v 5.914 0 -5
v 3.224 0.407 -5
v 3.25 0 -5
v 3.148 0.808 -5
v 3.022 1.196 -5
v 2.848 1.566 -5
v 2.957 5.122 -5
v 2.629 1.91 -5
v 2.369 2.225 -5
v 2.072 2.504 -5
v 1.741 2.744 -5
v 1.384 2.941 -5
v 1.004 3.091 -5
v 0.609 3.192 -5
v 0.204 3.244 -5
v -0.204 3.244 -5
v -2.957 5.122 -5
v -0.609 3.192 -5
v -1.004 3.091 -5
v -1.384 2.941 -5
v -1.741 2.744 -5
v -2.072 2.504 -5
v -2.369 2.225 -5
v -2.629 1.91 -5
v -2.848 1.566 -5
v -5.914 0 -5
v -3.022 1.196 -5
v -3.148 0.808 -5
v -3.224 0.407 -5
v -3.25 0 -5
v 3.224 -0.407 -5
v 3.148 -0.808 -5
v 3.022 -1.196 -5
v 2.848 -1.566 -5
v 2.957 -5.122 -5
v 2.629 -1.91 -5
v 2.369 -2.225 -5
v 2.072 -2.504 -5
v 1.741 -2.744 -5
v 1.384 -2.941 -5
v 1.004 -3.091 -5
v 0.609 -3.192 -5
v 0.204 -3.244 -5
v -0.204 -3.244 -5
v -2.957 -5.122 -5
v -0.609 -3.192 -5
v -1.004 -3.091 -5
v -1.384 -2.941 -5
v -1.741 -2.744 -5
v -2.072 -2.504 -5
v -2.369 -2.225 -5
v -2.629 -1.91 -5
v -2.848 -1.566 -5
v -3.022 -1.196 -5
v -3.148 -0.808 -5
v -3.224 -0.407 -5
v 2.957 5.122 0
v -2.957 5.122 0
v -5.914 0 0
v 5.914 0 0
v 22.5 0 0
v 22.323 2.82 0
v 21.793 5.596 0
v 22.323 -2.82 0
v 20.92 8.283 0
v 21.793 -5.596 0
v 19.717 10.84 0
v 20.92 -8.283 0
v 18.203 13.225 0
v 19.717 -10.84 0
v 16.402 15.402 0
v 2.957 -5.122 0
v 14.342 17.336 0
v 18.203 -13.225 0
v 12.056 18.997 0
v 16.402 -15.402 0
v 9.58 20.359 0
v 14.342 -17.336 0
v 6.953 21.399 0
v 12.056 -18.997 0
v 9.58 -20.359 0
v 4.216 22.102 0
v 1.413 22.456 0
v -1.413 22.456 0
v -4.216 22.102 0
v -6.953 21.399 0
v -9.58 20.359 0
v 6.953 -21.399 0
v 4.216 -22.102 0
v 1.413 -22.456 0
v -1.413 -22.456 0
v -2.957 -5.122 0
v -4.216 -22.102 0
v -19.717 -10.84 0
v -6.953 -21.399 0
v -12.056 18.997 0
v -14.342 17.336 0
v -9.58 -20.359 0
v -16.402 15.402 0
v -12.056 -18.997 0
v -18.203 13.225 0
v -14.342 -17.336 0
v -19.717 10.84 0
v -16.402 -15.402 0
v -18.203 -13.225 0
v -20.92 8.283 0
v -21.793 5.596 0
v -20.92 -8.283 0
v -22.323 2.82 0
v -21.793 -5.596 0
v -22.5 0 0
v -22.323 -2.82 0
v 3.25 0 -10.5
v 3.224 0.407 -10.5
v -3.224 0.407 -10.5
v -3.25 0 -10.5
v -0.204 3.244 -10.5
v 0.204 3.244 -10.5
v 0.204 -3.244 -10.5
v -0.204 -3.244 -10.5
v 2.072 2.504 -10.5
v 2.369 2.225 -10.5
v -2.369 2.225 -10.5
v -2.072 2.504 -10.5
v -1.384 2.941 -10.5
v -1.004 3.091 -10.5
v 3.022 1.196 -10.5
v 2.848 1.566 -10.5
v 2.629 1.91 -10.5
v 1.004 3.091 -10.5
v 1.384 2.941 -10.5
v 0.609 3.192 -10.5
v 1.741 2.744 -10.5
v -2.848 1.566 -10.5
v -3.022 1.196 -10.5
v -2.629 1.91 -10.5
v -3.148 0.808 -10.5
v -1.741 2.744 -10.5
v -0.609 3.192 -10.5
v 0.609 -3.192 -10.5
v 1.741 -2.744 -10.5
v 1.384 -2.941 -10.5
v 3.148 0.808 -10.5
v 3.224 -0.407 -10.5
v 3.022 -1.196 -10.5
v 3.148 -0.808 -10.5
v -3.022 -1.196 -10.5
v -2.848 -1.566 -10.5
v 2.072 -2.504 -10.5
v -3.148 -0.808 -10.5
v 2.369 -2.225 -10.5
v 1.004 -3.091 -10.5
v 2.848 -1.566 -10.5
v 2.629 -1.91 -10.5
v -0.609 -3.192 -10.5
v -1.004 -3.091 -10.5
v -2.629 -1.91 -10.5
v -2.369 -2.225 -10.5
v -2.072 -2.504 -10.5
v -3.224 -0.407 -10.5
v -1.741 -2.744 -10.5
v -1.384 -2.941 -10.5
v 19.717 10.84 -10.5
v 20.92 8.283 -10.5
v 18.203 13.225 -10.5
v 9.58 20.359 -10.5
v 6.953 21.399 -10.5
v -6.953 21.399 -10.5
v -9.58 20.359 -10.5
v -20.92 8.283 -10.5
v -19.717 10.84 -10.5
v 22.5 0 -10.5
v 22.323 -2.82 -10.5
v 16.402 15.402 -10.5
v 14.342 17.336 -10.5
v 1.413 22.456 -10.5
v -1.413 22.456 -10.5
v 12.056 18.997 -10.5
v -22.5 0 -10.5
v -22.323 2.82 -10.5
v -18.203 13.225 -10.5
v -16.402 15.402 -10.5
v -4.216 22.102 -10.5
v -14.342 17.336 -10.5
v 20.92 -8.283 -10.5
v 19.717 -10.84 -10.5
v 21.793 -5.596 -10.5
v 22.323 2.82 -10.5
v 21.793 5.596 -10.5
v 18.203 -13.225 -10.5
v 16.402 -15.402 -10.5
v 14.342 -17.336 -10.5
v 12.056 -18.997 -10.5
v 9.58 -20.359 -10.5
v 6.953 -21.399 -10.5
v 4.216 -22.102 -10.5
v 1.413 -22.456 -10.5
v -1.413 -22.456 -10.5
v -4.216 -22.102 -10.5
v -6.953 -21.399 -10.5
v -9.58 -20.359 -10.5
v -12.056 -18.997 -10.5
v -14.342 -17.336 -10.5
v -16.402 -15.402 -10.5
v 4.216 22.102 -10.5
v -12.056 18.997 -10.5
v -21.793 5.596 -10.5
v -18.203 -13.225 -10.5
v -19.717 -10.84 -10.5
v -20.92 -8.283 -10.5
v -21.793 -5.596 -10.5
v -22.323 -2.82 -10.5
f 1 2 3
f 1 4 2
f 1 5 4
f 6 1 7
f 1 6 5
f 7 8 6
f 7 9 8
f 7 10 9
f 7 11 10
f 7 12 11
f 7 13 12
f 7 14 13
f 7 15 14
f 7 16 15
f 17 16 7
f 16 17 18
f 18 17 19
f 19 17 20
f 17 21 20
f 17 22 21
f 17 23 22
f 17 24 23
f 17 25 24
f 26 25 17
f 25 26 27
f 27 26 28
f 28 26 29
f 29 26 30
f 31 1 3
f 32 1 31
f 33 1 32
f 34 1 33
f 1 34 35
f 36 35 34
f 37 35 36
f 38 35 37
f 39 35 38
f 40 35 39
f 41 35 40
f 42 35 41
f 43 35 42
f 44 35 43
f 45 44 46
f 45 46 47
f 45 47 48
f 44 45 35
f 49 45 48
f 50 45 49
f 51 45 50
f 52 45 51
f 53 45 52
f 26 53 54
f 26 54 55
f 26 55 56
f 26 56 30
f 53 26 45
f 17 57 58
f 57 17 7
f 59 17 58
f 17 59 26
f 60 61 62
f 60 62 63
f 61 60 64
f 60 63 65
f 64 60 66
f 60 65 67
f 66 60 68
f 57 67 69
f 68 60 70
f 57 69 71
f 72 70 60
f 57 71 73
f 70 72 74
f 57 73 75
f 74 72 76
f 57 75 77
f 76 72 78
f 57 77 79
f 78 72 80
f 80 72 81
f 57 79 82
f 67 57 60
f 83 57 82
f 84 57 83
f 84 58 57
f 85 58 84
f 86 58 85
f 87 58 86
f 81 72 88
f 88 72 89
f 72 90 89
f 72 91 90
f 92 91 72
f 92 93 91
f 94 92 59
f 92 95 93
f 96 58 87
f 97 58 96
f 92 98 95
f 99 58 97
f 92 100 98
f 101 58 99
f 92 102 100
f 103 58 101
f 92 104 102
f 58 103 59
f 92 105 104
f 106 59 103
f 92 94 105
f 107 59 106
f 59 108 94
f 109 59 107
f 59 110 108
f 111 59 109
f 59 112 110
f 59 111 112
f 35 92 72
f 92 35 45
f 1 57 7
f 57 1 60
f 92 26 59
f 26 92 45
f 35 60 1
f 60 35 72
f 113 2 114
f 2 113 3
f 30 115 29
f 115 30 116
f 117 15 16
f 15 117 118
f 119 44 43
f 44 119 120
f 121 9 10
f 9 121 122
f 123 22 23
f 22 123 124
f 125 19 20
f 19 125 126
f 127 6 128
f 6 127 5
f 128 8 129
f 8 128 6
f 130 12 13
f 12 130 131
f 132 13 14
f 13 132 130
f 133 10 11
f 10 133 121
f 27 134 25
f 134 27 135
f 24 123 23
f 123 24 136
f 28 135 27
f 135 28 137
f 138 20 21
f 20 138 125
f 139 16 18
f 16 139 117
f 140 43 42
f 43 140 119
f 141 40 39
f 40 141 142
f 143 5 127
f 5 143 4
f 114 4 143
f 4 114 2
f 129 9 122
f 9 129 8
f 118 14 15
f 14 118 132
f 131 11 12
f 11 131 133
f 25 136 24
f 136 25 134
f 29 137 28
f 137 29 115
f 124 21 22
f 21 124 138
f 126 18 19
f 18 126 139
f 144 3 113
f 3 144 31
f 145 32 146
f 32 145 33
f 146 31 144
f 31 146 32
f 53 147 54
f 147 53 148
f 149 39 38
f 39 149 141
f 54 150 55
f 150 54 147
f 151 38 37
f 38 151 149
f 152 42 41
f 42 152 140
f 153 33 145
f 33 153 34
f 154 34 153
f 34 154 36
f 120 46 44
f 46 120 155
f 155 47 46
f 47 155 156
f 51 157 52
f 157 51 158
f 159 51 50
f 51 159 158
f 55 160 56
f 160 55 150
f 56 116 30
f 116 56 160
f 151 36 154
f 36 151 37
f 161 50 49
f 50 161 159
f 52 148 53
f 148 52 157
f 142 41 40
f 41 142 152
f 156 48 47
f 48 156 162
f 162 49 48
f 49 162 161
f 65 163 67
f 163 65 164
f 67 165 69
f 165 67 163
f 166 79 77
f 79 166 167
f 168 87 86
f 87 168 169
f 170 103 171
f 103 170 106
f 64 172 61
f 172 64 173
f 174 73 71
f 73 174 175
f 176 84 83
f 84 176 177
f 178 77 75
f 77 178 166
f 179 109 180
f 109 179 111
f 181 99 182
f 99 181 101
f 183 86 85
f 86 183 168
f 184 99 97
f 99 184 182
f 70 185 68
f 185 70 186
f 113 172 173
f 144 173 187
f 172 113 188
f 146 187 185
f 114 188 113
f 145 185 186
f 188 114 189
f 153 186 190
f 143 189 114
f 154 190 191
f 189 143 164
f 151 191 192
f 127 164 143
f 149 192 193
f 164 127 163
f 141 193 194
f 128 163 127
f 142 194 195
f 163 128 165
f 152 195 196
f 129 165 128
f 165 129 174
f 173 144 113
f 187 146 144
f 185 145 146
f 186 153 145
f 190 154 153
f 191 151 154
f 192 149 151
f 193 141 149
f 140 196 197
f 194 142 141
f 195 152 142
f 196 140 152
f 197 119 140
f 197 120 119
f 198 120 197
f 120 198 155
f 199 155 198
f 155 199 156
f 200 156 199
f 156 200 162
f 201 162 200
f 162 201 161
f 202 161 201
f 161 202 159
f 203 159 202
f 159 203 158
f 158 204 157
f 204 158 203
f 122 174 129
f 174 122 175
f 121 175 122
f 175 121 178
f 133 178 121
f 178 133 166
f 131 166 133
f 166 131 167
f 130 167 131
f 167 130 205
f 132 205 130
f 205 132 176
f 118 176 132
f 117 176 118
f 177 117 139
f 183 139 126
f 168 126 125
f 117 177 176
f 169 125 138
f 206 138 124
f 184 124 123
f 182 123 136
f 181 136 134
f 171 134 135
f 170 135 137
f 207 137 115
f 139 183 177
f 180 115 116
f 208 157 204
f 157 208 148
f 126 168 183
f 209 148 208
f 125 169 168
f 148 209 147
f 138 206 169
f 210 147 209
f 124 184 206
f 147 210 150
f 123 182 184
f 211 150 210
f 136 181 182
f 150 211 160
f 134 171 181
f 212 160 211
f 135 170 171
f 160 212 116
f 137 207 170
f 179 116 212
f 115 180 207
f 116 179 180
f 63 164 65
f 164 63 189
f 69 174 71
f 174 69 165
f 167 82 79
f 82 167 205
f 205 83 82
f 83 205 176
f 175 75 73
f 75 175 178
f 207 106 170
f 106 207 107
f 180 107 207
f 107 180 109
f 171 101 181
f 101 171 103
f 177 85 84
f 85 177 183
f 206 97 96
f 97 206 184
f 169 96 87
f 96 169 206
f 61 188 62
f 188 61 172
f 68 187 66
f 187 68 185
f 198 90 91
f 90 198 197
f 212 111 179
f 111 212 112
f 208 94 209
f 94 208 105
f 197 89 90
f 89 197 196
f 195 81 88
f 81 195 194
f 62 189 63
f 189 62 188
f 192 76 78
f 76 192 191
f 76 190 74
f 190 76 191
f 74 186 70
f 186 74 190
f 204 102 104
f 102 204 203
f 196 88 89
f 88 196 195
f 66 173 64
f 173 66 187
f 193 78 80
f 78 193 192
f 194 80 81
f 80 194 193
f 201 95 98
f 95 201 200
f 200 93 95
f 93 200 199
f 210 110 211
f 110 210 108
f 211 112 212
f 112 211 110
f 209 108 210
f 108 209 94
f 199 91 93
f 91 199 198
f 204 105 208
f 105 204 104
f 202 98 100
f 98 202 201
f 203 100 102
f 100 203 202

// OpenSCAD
$fn = 50;


difference() {
	union() {
		translate(v = [0, 0, -10.5000000000]) {
			cylinder(h = 10.5000000000, r = 22.5000000000);
		}
	}
	union() {
		translate(v = [0, 0, 0]) {
			rotate(a = [0, 0, 0]) {
				difference() {
					union() {
						translate(v = [0, 0, -5]) {
							#linear_extrude(height = 5) {
								polygon(points = [[5.9142500000, 0.0000000000], [2.9571250000, 5.1218907443], [-2.9571250000, 5.1218907443], [-5.9142500000, 0.0000000000], [-2.9571250000, -5.1218907443], [2.9571250000, -5.1218907443]]);
							}
						}
					}
					union();
				}
			}
		}
		#translate(v = [0, 0, -100.0000000000]) {
			cylinder(h = 200, r = 3.2500000000);
		}
	}
}
